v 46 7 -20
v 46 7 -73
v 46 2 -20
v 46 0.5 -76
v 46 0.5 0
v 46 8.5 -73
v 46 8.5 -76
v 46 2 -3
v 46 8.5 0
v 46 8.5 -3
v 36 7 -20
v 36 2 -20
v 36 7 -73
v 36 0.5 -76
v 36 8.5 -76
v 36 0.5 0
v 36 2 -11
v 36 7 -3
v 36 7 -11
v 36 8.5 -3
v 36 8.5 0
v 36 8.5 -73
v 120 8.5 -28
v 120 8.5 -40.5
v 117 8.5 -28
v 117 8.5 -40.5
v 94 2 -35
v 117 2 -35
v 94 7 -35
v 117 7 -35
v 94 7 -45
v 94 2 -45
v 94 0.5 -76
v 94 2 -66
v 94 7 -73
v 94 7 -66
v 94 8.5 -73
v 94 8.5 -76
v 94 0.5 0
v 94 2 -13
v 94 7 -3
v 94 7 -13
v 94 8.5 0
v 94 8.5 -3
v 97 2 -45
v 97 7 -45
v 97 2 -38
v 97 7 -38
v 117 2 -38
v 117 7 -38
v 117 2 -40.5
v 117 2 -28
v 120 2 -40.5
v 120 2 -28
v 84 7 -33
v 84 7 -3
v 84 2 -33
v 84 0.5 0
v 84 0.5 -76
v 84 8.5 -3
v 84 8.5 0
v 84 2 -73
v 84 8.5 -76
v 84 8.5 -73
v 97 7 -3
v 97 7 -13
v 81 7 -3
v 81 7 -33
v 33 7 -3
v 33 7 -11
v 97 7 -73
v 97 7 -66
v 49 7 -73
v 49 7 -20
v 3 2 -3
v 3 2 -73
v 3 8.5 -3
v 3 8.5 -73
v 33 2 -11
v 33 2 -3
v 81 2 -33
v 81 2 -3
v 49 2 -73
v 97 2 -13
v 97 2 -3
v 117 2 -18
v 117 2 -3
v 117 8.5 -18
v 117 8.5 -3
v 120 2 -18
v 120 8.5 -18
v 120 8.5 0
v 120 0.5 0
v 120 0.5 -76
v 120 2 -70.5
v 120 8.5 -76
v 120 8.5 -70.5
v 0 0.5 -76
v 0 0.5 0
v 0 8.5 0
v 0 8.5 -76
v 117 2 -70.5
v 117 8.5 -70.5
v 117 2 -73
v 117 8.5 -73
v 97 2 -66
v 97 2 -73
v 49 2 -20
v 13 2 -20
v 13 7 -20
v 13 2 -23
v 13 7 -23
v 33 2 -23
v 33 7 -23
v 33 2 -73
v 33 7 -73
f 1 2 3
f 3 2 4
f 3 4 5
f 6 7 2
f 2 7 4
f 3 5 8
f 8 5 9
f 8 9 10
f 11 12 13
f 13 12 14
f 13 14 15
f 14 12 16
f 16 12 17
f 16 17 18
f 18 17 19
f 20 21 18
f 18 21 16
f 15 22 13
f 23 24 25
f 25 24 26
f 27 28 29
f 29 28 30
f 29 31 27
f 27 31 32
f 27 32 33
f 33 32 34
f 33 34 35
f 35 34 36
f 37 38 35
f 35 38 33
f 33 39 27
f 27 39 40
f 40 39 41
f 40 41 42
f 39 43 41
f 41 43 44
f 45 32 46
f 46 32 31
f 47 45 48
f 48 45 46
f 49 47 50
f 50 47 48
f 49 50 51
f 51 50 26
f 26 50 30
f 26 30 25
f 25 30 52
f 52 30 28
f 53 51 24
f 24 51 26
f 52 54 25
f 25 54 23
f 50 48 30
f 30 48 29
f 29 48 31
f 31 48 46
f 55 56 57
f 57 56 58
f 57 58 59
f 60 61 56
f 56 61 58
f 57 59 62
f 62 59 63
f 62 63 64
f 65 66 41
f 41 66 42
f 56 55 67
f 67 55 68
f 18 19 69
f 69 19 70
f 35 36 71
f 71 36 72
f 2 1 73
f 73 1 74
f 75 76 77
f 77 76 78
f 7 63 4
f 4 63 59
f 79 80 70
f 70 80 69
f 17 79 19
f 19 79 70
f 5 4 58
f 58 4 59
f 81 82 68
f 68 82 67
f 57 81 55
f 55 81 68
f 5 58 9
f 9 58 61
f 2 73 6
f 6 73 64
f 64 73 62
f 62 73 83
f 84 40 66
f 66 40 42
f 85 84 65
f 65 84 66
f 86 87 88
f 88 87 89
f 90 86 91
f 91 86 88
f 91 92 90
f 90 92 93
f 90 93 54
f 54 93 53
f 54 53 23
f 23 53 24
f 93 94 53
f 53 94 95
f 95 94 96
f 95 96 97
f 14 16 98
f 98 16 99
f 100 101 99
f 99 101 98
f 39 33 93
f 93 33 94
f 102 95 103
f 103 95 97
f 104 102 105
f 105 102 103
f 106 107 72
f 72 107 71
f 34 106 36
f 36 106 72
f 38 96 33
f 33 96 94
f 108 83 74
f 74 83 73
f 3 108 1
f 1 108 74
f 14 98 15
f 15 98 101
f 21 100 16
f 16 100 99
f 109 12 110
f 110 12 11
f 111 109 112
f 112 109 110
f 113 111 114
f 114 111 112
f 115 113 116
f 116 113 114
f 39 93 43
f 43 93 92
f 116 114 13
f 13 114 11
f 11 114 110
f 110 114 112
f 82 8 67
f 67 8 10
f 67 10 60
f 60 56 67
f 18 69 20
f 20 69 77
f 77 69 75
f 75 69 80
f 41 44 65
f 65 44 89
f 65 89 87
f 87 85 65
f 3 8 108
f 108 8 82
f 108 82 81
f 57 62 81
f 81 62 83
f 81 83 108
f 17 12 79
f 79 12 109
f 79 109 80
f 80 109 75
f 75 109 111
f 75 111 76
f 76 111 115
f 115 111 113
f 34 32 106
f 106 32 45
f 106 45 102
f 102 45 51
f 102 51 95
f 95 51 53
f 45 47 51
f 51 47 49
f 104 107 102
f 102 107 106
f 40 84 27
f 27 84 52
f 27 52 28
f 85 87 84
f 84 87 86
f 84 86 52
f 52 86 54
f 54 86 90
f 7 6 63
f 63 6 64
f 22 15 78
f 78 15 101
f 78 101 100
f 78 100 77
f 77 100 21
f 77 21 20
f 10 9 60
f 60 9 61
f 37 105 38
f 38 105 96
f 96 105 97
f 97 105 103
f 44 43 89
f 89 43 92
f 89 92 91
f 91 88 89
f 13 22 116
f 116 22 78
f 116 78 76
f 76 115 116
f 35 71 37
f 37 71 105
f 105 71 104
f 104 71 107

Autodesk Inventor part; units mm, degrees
ref_plane "YZ Plane" through (0, 0, 0) normal (1, 0, 0) x (0, 1, 0)
ref_plane "XZ Plane" through (0, 0, 0) normal (0, 1, 0) x (-1, 0, 0)
ref_plane "XY Plane" through (0, 0, 0) normal (0, 0, 1) x (1, 0, 0)
ref_plane "作業平面1" through (0, 2, 0) normal (0, 1, 0) x (1, 0, 0)
sketch "スケッチ4" plane through (0, 2, 0) normal (0, 1, 0) x (1, 0, 0)
  line L0 (3, 73) -> (33, 73)
  line L1 (3, 73) -> (3, 23)
  line L2 (3, 20) -> (3, 3)
  line L3 (81, 3) -> (81, 33)
  line L4 (81, 33) -> (84, 33)
  line L5 (84, 33) -> (84, 3)
  line L6 (117, 3) -> (117, 18)
  line L7 (117, 18) -> (120, 18)
  line L8 (117, 28) -> (117, 35)
  line L9 (120, 28) -> (117, 28)
  line L10 (120, 28) -> (120, 38)
  line L11 (117, 38) -> (97, 38)
  line L12 (97, 38) -> (97, 45)
  line L13 (97, 45) -> (94, 45)
  line L14 (94, 45) -> (94, 35)
  line L15 (94, 35) -> (117, 35)
  line L16 (97, 73) -> (97, 66)
  line L17 (97, 66) -> (94, 66)
  line L18 (94, 66) -> (94, 73)
  line L19 (33, 73) -> (33, 23)
  line L20 (33, 23) -> (13, 23)
  line L21 (13, 23) -> (13, 20)
  line L22 (13, 20) -> (36, 20)
  line L23 (36, 20) -> (36, 73)
  line L24 (36, 73) -> (46, 73)
  line L25 (46, 73) -> (46, 20)
  line L26 (46, 20) -> (49, 20)
  line L27 (49, 20) -> (49, 73)
  line L28 (117, 38) -> (117, 40.5)
  line L29 (117, 40.5) -> (120, 40.5)
  line L30 (120, 40.5) -> (120, 38)
  line L31 (117, 73) -> (117, 70.5)
  line L32 (117, 70.5) -> (120, 70.5)
  line L33 (0, 0) -> (0, 76)
  line L34 (0, 76) -> (120, 76)
  line L35 (120, 76) -> (120, 70.5)
  line L36 (0, 0) -> (120, 0)
  line L37 (120, 0) -> (120, 18)
  line L38 (3, 23) -> (3, 20)
  line L39 (33, 3) -> (33, 11)
  line L40 (33, 11) -> (36, 11)
  line L41 (36, 11) -> (36, 3)
  line L42 (3, 3) -> (33, 3)
  line L43 (36, 3) -> (81, 3)
  line L44 (94, 3) -> (94, 13)
  line L45 (94, 13) -> (97, 13)
  line L46 (97, 13) -> (97, 3)
  line L47 (84, 3) -> (94, 3)
  line L48 (97, 3) -> (117, 3)
  line L49 (117, 73) -> (97, 73)
  line L50 (94, 73) -> (49, 73)
  dimension "d29" = 3
  dimension "d30" = 30
  dimension "d34" = 3
  dimension "d35" = 20
  dimension "d36" = 3
  dimension "d37" = 10
  dimension "d39" = 3
  dimension "d41" = 32
  dimension "d42" = 3
  dimension "d60" = 3
  dimension "d61" = 3
  dimension "d63" = 7
  dimension "d64" = 7
  dimension "d65" = 15
  dimension "d66" = 10
  dimension "d67" = 2.5
  dimension "d68" = 3
  dimension "d69" = 3
  dimension "d70" = 2.5
  dimension "d75" = 76
  dimension "d78" = 3
  dimension "d79" = 3
  dimension "d80" = 3
  dimension "d81" = 20
  dimension "d82" = 50
  dimension "d84" = 120
  dimension "d85" = 3
  dimension "d86" = 8
  dimension "d87" = 3
  dimension "d88" = 30
  dimension "d89" = 3
  dimension "d90" = 10
  dimension "d91" = 10
  dimension "d92" = 35
extrude "押し出し5" add sketch "スケッチ4" along normal blind 5
sketch "スケッチ6" plane through (0, 2, 0) normal (0, 1, 0) x (1, 0, 0)
  line L0 (0, 0) -> (120, 0) projected
  line L1 (0, 0) -> (120, 0)
  line L2 (120, 18) -> (117, 18) projected
  line L3 (120, 0) -> (120, 18)
  line L4 (120, 18) -> (117, 18)
  line L5 (117, 18) -> (117, 3) projected
  line L6 (117, 18) -> (117, 3)
  line L7 (3, 3) -> (3, 73) projected
  line L8 (117, 3) -> (3, 3)
  line L9 (3, 3) -> (3, 73)
  line L10 (97, 73) -> (117, 73) projected
  line L11 (3, 73) -> (117, 73)
  line L12 (117, 73) -> (117, 70.5) projected
  line L13 (117, 73) -> (117, 70.5)
  line L14 (117, 70.5) -> (120, 70.5) projected
  line L15 (117, 70.5) -> (120, 70.5)
  line L16 (120, 70.5) -> (120, 76) projected
  line L17 (120, 70.5) -> (120, 76)
  line L18 (120, 76) -> (0, 76) projected
  line L19 (120, 76) -> (0, 76)
  line L20 (0, 76) -> (0, 0) projected
  line L21 (0, 76) -> (0, 0)
  line L22 (120, 28) -> (117, 28) projected
  line L23 (117, 28) -> (120, 28)
  line L24 (120, 40.5) -> (120, 28) projected
  line L25 (120, 28) -> (120, 40.5)
  line L26 (117, 40.5) -> (120, 40.5) projected
  line L27 (120, 40.5) -> (117, 40.5)
  line L28 (117, 40.5) -> (117, 28)
extrude "押し出し6" add sketch "スケッチ6" along normal blind 6.5
sketch "スケッチ7" plane through (0, 2, 0) normal (0, 1, 0) x (1, 0, 0)
  line L0 (0, 0) -> (120, 0) projected
  line L1 (120, 70.5) -> (120, 76) projected
  line L2 (0, 0) -> (120, 0)
  line L3 (120, 0) -> (120, 76)
  line L4 (120, 76) -> (0, 76)
  line L5 (0, 76) -> (0, 0)
extrude "押し出し7" add sketch "スケッチ7" against normal blind 1.5
sketch "スケッチ8" plane through (0, 8.5, 0) normal (0, 1, 0) x (1, 0, 0)
  line L0 (36, 20) -> (36, 73) projected
  line L1 (36, 76) -> (46, 76)
  line L2 (46, 76) -> (46, 0)
  line L3 (46, 0) -> (36, 0)
  line L4 (36, 0) -> (36, 76)
  line L5 (120, 76) -> (0, 76) projected
  line L6 (0, 0) -> (120, 0) projected
  line L7 (46, 73) -> (46, 20) projected
  line L8 (84, 3) -> (84, 33) projected
  line L9 (94, 45) -> (94, 35) projected
  line L10 (84, 0) -> (94, 0)
  line L11 (94, 0) -> (94, 76)
  line L12 (94, 76) -> (84, 76)
  line L13 (84, 76) -> (84, 0)
extrude "押し出し8" cut sketch "スケッチ8" against normal blind 8 contours L0 L4 L1 L2 L3 | L13 L8 L5 L11 L9 L6
properties part number "BASE_revised_UPBOX"
